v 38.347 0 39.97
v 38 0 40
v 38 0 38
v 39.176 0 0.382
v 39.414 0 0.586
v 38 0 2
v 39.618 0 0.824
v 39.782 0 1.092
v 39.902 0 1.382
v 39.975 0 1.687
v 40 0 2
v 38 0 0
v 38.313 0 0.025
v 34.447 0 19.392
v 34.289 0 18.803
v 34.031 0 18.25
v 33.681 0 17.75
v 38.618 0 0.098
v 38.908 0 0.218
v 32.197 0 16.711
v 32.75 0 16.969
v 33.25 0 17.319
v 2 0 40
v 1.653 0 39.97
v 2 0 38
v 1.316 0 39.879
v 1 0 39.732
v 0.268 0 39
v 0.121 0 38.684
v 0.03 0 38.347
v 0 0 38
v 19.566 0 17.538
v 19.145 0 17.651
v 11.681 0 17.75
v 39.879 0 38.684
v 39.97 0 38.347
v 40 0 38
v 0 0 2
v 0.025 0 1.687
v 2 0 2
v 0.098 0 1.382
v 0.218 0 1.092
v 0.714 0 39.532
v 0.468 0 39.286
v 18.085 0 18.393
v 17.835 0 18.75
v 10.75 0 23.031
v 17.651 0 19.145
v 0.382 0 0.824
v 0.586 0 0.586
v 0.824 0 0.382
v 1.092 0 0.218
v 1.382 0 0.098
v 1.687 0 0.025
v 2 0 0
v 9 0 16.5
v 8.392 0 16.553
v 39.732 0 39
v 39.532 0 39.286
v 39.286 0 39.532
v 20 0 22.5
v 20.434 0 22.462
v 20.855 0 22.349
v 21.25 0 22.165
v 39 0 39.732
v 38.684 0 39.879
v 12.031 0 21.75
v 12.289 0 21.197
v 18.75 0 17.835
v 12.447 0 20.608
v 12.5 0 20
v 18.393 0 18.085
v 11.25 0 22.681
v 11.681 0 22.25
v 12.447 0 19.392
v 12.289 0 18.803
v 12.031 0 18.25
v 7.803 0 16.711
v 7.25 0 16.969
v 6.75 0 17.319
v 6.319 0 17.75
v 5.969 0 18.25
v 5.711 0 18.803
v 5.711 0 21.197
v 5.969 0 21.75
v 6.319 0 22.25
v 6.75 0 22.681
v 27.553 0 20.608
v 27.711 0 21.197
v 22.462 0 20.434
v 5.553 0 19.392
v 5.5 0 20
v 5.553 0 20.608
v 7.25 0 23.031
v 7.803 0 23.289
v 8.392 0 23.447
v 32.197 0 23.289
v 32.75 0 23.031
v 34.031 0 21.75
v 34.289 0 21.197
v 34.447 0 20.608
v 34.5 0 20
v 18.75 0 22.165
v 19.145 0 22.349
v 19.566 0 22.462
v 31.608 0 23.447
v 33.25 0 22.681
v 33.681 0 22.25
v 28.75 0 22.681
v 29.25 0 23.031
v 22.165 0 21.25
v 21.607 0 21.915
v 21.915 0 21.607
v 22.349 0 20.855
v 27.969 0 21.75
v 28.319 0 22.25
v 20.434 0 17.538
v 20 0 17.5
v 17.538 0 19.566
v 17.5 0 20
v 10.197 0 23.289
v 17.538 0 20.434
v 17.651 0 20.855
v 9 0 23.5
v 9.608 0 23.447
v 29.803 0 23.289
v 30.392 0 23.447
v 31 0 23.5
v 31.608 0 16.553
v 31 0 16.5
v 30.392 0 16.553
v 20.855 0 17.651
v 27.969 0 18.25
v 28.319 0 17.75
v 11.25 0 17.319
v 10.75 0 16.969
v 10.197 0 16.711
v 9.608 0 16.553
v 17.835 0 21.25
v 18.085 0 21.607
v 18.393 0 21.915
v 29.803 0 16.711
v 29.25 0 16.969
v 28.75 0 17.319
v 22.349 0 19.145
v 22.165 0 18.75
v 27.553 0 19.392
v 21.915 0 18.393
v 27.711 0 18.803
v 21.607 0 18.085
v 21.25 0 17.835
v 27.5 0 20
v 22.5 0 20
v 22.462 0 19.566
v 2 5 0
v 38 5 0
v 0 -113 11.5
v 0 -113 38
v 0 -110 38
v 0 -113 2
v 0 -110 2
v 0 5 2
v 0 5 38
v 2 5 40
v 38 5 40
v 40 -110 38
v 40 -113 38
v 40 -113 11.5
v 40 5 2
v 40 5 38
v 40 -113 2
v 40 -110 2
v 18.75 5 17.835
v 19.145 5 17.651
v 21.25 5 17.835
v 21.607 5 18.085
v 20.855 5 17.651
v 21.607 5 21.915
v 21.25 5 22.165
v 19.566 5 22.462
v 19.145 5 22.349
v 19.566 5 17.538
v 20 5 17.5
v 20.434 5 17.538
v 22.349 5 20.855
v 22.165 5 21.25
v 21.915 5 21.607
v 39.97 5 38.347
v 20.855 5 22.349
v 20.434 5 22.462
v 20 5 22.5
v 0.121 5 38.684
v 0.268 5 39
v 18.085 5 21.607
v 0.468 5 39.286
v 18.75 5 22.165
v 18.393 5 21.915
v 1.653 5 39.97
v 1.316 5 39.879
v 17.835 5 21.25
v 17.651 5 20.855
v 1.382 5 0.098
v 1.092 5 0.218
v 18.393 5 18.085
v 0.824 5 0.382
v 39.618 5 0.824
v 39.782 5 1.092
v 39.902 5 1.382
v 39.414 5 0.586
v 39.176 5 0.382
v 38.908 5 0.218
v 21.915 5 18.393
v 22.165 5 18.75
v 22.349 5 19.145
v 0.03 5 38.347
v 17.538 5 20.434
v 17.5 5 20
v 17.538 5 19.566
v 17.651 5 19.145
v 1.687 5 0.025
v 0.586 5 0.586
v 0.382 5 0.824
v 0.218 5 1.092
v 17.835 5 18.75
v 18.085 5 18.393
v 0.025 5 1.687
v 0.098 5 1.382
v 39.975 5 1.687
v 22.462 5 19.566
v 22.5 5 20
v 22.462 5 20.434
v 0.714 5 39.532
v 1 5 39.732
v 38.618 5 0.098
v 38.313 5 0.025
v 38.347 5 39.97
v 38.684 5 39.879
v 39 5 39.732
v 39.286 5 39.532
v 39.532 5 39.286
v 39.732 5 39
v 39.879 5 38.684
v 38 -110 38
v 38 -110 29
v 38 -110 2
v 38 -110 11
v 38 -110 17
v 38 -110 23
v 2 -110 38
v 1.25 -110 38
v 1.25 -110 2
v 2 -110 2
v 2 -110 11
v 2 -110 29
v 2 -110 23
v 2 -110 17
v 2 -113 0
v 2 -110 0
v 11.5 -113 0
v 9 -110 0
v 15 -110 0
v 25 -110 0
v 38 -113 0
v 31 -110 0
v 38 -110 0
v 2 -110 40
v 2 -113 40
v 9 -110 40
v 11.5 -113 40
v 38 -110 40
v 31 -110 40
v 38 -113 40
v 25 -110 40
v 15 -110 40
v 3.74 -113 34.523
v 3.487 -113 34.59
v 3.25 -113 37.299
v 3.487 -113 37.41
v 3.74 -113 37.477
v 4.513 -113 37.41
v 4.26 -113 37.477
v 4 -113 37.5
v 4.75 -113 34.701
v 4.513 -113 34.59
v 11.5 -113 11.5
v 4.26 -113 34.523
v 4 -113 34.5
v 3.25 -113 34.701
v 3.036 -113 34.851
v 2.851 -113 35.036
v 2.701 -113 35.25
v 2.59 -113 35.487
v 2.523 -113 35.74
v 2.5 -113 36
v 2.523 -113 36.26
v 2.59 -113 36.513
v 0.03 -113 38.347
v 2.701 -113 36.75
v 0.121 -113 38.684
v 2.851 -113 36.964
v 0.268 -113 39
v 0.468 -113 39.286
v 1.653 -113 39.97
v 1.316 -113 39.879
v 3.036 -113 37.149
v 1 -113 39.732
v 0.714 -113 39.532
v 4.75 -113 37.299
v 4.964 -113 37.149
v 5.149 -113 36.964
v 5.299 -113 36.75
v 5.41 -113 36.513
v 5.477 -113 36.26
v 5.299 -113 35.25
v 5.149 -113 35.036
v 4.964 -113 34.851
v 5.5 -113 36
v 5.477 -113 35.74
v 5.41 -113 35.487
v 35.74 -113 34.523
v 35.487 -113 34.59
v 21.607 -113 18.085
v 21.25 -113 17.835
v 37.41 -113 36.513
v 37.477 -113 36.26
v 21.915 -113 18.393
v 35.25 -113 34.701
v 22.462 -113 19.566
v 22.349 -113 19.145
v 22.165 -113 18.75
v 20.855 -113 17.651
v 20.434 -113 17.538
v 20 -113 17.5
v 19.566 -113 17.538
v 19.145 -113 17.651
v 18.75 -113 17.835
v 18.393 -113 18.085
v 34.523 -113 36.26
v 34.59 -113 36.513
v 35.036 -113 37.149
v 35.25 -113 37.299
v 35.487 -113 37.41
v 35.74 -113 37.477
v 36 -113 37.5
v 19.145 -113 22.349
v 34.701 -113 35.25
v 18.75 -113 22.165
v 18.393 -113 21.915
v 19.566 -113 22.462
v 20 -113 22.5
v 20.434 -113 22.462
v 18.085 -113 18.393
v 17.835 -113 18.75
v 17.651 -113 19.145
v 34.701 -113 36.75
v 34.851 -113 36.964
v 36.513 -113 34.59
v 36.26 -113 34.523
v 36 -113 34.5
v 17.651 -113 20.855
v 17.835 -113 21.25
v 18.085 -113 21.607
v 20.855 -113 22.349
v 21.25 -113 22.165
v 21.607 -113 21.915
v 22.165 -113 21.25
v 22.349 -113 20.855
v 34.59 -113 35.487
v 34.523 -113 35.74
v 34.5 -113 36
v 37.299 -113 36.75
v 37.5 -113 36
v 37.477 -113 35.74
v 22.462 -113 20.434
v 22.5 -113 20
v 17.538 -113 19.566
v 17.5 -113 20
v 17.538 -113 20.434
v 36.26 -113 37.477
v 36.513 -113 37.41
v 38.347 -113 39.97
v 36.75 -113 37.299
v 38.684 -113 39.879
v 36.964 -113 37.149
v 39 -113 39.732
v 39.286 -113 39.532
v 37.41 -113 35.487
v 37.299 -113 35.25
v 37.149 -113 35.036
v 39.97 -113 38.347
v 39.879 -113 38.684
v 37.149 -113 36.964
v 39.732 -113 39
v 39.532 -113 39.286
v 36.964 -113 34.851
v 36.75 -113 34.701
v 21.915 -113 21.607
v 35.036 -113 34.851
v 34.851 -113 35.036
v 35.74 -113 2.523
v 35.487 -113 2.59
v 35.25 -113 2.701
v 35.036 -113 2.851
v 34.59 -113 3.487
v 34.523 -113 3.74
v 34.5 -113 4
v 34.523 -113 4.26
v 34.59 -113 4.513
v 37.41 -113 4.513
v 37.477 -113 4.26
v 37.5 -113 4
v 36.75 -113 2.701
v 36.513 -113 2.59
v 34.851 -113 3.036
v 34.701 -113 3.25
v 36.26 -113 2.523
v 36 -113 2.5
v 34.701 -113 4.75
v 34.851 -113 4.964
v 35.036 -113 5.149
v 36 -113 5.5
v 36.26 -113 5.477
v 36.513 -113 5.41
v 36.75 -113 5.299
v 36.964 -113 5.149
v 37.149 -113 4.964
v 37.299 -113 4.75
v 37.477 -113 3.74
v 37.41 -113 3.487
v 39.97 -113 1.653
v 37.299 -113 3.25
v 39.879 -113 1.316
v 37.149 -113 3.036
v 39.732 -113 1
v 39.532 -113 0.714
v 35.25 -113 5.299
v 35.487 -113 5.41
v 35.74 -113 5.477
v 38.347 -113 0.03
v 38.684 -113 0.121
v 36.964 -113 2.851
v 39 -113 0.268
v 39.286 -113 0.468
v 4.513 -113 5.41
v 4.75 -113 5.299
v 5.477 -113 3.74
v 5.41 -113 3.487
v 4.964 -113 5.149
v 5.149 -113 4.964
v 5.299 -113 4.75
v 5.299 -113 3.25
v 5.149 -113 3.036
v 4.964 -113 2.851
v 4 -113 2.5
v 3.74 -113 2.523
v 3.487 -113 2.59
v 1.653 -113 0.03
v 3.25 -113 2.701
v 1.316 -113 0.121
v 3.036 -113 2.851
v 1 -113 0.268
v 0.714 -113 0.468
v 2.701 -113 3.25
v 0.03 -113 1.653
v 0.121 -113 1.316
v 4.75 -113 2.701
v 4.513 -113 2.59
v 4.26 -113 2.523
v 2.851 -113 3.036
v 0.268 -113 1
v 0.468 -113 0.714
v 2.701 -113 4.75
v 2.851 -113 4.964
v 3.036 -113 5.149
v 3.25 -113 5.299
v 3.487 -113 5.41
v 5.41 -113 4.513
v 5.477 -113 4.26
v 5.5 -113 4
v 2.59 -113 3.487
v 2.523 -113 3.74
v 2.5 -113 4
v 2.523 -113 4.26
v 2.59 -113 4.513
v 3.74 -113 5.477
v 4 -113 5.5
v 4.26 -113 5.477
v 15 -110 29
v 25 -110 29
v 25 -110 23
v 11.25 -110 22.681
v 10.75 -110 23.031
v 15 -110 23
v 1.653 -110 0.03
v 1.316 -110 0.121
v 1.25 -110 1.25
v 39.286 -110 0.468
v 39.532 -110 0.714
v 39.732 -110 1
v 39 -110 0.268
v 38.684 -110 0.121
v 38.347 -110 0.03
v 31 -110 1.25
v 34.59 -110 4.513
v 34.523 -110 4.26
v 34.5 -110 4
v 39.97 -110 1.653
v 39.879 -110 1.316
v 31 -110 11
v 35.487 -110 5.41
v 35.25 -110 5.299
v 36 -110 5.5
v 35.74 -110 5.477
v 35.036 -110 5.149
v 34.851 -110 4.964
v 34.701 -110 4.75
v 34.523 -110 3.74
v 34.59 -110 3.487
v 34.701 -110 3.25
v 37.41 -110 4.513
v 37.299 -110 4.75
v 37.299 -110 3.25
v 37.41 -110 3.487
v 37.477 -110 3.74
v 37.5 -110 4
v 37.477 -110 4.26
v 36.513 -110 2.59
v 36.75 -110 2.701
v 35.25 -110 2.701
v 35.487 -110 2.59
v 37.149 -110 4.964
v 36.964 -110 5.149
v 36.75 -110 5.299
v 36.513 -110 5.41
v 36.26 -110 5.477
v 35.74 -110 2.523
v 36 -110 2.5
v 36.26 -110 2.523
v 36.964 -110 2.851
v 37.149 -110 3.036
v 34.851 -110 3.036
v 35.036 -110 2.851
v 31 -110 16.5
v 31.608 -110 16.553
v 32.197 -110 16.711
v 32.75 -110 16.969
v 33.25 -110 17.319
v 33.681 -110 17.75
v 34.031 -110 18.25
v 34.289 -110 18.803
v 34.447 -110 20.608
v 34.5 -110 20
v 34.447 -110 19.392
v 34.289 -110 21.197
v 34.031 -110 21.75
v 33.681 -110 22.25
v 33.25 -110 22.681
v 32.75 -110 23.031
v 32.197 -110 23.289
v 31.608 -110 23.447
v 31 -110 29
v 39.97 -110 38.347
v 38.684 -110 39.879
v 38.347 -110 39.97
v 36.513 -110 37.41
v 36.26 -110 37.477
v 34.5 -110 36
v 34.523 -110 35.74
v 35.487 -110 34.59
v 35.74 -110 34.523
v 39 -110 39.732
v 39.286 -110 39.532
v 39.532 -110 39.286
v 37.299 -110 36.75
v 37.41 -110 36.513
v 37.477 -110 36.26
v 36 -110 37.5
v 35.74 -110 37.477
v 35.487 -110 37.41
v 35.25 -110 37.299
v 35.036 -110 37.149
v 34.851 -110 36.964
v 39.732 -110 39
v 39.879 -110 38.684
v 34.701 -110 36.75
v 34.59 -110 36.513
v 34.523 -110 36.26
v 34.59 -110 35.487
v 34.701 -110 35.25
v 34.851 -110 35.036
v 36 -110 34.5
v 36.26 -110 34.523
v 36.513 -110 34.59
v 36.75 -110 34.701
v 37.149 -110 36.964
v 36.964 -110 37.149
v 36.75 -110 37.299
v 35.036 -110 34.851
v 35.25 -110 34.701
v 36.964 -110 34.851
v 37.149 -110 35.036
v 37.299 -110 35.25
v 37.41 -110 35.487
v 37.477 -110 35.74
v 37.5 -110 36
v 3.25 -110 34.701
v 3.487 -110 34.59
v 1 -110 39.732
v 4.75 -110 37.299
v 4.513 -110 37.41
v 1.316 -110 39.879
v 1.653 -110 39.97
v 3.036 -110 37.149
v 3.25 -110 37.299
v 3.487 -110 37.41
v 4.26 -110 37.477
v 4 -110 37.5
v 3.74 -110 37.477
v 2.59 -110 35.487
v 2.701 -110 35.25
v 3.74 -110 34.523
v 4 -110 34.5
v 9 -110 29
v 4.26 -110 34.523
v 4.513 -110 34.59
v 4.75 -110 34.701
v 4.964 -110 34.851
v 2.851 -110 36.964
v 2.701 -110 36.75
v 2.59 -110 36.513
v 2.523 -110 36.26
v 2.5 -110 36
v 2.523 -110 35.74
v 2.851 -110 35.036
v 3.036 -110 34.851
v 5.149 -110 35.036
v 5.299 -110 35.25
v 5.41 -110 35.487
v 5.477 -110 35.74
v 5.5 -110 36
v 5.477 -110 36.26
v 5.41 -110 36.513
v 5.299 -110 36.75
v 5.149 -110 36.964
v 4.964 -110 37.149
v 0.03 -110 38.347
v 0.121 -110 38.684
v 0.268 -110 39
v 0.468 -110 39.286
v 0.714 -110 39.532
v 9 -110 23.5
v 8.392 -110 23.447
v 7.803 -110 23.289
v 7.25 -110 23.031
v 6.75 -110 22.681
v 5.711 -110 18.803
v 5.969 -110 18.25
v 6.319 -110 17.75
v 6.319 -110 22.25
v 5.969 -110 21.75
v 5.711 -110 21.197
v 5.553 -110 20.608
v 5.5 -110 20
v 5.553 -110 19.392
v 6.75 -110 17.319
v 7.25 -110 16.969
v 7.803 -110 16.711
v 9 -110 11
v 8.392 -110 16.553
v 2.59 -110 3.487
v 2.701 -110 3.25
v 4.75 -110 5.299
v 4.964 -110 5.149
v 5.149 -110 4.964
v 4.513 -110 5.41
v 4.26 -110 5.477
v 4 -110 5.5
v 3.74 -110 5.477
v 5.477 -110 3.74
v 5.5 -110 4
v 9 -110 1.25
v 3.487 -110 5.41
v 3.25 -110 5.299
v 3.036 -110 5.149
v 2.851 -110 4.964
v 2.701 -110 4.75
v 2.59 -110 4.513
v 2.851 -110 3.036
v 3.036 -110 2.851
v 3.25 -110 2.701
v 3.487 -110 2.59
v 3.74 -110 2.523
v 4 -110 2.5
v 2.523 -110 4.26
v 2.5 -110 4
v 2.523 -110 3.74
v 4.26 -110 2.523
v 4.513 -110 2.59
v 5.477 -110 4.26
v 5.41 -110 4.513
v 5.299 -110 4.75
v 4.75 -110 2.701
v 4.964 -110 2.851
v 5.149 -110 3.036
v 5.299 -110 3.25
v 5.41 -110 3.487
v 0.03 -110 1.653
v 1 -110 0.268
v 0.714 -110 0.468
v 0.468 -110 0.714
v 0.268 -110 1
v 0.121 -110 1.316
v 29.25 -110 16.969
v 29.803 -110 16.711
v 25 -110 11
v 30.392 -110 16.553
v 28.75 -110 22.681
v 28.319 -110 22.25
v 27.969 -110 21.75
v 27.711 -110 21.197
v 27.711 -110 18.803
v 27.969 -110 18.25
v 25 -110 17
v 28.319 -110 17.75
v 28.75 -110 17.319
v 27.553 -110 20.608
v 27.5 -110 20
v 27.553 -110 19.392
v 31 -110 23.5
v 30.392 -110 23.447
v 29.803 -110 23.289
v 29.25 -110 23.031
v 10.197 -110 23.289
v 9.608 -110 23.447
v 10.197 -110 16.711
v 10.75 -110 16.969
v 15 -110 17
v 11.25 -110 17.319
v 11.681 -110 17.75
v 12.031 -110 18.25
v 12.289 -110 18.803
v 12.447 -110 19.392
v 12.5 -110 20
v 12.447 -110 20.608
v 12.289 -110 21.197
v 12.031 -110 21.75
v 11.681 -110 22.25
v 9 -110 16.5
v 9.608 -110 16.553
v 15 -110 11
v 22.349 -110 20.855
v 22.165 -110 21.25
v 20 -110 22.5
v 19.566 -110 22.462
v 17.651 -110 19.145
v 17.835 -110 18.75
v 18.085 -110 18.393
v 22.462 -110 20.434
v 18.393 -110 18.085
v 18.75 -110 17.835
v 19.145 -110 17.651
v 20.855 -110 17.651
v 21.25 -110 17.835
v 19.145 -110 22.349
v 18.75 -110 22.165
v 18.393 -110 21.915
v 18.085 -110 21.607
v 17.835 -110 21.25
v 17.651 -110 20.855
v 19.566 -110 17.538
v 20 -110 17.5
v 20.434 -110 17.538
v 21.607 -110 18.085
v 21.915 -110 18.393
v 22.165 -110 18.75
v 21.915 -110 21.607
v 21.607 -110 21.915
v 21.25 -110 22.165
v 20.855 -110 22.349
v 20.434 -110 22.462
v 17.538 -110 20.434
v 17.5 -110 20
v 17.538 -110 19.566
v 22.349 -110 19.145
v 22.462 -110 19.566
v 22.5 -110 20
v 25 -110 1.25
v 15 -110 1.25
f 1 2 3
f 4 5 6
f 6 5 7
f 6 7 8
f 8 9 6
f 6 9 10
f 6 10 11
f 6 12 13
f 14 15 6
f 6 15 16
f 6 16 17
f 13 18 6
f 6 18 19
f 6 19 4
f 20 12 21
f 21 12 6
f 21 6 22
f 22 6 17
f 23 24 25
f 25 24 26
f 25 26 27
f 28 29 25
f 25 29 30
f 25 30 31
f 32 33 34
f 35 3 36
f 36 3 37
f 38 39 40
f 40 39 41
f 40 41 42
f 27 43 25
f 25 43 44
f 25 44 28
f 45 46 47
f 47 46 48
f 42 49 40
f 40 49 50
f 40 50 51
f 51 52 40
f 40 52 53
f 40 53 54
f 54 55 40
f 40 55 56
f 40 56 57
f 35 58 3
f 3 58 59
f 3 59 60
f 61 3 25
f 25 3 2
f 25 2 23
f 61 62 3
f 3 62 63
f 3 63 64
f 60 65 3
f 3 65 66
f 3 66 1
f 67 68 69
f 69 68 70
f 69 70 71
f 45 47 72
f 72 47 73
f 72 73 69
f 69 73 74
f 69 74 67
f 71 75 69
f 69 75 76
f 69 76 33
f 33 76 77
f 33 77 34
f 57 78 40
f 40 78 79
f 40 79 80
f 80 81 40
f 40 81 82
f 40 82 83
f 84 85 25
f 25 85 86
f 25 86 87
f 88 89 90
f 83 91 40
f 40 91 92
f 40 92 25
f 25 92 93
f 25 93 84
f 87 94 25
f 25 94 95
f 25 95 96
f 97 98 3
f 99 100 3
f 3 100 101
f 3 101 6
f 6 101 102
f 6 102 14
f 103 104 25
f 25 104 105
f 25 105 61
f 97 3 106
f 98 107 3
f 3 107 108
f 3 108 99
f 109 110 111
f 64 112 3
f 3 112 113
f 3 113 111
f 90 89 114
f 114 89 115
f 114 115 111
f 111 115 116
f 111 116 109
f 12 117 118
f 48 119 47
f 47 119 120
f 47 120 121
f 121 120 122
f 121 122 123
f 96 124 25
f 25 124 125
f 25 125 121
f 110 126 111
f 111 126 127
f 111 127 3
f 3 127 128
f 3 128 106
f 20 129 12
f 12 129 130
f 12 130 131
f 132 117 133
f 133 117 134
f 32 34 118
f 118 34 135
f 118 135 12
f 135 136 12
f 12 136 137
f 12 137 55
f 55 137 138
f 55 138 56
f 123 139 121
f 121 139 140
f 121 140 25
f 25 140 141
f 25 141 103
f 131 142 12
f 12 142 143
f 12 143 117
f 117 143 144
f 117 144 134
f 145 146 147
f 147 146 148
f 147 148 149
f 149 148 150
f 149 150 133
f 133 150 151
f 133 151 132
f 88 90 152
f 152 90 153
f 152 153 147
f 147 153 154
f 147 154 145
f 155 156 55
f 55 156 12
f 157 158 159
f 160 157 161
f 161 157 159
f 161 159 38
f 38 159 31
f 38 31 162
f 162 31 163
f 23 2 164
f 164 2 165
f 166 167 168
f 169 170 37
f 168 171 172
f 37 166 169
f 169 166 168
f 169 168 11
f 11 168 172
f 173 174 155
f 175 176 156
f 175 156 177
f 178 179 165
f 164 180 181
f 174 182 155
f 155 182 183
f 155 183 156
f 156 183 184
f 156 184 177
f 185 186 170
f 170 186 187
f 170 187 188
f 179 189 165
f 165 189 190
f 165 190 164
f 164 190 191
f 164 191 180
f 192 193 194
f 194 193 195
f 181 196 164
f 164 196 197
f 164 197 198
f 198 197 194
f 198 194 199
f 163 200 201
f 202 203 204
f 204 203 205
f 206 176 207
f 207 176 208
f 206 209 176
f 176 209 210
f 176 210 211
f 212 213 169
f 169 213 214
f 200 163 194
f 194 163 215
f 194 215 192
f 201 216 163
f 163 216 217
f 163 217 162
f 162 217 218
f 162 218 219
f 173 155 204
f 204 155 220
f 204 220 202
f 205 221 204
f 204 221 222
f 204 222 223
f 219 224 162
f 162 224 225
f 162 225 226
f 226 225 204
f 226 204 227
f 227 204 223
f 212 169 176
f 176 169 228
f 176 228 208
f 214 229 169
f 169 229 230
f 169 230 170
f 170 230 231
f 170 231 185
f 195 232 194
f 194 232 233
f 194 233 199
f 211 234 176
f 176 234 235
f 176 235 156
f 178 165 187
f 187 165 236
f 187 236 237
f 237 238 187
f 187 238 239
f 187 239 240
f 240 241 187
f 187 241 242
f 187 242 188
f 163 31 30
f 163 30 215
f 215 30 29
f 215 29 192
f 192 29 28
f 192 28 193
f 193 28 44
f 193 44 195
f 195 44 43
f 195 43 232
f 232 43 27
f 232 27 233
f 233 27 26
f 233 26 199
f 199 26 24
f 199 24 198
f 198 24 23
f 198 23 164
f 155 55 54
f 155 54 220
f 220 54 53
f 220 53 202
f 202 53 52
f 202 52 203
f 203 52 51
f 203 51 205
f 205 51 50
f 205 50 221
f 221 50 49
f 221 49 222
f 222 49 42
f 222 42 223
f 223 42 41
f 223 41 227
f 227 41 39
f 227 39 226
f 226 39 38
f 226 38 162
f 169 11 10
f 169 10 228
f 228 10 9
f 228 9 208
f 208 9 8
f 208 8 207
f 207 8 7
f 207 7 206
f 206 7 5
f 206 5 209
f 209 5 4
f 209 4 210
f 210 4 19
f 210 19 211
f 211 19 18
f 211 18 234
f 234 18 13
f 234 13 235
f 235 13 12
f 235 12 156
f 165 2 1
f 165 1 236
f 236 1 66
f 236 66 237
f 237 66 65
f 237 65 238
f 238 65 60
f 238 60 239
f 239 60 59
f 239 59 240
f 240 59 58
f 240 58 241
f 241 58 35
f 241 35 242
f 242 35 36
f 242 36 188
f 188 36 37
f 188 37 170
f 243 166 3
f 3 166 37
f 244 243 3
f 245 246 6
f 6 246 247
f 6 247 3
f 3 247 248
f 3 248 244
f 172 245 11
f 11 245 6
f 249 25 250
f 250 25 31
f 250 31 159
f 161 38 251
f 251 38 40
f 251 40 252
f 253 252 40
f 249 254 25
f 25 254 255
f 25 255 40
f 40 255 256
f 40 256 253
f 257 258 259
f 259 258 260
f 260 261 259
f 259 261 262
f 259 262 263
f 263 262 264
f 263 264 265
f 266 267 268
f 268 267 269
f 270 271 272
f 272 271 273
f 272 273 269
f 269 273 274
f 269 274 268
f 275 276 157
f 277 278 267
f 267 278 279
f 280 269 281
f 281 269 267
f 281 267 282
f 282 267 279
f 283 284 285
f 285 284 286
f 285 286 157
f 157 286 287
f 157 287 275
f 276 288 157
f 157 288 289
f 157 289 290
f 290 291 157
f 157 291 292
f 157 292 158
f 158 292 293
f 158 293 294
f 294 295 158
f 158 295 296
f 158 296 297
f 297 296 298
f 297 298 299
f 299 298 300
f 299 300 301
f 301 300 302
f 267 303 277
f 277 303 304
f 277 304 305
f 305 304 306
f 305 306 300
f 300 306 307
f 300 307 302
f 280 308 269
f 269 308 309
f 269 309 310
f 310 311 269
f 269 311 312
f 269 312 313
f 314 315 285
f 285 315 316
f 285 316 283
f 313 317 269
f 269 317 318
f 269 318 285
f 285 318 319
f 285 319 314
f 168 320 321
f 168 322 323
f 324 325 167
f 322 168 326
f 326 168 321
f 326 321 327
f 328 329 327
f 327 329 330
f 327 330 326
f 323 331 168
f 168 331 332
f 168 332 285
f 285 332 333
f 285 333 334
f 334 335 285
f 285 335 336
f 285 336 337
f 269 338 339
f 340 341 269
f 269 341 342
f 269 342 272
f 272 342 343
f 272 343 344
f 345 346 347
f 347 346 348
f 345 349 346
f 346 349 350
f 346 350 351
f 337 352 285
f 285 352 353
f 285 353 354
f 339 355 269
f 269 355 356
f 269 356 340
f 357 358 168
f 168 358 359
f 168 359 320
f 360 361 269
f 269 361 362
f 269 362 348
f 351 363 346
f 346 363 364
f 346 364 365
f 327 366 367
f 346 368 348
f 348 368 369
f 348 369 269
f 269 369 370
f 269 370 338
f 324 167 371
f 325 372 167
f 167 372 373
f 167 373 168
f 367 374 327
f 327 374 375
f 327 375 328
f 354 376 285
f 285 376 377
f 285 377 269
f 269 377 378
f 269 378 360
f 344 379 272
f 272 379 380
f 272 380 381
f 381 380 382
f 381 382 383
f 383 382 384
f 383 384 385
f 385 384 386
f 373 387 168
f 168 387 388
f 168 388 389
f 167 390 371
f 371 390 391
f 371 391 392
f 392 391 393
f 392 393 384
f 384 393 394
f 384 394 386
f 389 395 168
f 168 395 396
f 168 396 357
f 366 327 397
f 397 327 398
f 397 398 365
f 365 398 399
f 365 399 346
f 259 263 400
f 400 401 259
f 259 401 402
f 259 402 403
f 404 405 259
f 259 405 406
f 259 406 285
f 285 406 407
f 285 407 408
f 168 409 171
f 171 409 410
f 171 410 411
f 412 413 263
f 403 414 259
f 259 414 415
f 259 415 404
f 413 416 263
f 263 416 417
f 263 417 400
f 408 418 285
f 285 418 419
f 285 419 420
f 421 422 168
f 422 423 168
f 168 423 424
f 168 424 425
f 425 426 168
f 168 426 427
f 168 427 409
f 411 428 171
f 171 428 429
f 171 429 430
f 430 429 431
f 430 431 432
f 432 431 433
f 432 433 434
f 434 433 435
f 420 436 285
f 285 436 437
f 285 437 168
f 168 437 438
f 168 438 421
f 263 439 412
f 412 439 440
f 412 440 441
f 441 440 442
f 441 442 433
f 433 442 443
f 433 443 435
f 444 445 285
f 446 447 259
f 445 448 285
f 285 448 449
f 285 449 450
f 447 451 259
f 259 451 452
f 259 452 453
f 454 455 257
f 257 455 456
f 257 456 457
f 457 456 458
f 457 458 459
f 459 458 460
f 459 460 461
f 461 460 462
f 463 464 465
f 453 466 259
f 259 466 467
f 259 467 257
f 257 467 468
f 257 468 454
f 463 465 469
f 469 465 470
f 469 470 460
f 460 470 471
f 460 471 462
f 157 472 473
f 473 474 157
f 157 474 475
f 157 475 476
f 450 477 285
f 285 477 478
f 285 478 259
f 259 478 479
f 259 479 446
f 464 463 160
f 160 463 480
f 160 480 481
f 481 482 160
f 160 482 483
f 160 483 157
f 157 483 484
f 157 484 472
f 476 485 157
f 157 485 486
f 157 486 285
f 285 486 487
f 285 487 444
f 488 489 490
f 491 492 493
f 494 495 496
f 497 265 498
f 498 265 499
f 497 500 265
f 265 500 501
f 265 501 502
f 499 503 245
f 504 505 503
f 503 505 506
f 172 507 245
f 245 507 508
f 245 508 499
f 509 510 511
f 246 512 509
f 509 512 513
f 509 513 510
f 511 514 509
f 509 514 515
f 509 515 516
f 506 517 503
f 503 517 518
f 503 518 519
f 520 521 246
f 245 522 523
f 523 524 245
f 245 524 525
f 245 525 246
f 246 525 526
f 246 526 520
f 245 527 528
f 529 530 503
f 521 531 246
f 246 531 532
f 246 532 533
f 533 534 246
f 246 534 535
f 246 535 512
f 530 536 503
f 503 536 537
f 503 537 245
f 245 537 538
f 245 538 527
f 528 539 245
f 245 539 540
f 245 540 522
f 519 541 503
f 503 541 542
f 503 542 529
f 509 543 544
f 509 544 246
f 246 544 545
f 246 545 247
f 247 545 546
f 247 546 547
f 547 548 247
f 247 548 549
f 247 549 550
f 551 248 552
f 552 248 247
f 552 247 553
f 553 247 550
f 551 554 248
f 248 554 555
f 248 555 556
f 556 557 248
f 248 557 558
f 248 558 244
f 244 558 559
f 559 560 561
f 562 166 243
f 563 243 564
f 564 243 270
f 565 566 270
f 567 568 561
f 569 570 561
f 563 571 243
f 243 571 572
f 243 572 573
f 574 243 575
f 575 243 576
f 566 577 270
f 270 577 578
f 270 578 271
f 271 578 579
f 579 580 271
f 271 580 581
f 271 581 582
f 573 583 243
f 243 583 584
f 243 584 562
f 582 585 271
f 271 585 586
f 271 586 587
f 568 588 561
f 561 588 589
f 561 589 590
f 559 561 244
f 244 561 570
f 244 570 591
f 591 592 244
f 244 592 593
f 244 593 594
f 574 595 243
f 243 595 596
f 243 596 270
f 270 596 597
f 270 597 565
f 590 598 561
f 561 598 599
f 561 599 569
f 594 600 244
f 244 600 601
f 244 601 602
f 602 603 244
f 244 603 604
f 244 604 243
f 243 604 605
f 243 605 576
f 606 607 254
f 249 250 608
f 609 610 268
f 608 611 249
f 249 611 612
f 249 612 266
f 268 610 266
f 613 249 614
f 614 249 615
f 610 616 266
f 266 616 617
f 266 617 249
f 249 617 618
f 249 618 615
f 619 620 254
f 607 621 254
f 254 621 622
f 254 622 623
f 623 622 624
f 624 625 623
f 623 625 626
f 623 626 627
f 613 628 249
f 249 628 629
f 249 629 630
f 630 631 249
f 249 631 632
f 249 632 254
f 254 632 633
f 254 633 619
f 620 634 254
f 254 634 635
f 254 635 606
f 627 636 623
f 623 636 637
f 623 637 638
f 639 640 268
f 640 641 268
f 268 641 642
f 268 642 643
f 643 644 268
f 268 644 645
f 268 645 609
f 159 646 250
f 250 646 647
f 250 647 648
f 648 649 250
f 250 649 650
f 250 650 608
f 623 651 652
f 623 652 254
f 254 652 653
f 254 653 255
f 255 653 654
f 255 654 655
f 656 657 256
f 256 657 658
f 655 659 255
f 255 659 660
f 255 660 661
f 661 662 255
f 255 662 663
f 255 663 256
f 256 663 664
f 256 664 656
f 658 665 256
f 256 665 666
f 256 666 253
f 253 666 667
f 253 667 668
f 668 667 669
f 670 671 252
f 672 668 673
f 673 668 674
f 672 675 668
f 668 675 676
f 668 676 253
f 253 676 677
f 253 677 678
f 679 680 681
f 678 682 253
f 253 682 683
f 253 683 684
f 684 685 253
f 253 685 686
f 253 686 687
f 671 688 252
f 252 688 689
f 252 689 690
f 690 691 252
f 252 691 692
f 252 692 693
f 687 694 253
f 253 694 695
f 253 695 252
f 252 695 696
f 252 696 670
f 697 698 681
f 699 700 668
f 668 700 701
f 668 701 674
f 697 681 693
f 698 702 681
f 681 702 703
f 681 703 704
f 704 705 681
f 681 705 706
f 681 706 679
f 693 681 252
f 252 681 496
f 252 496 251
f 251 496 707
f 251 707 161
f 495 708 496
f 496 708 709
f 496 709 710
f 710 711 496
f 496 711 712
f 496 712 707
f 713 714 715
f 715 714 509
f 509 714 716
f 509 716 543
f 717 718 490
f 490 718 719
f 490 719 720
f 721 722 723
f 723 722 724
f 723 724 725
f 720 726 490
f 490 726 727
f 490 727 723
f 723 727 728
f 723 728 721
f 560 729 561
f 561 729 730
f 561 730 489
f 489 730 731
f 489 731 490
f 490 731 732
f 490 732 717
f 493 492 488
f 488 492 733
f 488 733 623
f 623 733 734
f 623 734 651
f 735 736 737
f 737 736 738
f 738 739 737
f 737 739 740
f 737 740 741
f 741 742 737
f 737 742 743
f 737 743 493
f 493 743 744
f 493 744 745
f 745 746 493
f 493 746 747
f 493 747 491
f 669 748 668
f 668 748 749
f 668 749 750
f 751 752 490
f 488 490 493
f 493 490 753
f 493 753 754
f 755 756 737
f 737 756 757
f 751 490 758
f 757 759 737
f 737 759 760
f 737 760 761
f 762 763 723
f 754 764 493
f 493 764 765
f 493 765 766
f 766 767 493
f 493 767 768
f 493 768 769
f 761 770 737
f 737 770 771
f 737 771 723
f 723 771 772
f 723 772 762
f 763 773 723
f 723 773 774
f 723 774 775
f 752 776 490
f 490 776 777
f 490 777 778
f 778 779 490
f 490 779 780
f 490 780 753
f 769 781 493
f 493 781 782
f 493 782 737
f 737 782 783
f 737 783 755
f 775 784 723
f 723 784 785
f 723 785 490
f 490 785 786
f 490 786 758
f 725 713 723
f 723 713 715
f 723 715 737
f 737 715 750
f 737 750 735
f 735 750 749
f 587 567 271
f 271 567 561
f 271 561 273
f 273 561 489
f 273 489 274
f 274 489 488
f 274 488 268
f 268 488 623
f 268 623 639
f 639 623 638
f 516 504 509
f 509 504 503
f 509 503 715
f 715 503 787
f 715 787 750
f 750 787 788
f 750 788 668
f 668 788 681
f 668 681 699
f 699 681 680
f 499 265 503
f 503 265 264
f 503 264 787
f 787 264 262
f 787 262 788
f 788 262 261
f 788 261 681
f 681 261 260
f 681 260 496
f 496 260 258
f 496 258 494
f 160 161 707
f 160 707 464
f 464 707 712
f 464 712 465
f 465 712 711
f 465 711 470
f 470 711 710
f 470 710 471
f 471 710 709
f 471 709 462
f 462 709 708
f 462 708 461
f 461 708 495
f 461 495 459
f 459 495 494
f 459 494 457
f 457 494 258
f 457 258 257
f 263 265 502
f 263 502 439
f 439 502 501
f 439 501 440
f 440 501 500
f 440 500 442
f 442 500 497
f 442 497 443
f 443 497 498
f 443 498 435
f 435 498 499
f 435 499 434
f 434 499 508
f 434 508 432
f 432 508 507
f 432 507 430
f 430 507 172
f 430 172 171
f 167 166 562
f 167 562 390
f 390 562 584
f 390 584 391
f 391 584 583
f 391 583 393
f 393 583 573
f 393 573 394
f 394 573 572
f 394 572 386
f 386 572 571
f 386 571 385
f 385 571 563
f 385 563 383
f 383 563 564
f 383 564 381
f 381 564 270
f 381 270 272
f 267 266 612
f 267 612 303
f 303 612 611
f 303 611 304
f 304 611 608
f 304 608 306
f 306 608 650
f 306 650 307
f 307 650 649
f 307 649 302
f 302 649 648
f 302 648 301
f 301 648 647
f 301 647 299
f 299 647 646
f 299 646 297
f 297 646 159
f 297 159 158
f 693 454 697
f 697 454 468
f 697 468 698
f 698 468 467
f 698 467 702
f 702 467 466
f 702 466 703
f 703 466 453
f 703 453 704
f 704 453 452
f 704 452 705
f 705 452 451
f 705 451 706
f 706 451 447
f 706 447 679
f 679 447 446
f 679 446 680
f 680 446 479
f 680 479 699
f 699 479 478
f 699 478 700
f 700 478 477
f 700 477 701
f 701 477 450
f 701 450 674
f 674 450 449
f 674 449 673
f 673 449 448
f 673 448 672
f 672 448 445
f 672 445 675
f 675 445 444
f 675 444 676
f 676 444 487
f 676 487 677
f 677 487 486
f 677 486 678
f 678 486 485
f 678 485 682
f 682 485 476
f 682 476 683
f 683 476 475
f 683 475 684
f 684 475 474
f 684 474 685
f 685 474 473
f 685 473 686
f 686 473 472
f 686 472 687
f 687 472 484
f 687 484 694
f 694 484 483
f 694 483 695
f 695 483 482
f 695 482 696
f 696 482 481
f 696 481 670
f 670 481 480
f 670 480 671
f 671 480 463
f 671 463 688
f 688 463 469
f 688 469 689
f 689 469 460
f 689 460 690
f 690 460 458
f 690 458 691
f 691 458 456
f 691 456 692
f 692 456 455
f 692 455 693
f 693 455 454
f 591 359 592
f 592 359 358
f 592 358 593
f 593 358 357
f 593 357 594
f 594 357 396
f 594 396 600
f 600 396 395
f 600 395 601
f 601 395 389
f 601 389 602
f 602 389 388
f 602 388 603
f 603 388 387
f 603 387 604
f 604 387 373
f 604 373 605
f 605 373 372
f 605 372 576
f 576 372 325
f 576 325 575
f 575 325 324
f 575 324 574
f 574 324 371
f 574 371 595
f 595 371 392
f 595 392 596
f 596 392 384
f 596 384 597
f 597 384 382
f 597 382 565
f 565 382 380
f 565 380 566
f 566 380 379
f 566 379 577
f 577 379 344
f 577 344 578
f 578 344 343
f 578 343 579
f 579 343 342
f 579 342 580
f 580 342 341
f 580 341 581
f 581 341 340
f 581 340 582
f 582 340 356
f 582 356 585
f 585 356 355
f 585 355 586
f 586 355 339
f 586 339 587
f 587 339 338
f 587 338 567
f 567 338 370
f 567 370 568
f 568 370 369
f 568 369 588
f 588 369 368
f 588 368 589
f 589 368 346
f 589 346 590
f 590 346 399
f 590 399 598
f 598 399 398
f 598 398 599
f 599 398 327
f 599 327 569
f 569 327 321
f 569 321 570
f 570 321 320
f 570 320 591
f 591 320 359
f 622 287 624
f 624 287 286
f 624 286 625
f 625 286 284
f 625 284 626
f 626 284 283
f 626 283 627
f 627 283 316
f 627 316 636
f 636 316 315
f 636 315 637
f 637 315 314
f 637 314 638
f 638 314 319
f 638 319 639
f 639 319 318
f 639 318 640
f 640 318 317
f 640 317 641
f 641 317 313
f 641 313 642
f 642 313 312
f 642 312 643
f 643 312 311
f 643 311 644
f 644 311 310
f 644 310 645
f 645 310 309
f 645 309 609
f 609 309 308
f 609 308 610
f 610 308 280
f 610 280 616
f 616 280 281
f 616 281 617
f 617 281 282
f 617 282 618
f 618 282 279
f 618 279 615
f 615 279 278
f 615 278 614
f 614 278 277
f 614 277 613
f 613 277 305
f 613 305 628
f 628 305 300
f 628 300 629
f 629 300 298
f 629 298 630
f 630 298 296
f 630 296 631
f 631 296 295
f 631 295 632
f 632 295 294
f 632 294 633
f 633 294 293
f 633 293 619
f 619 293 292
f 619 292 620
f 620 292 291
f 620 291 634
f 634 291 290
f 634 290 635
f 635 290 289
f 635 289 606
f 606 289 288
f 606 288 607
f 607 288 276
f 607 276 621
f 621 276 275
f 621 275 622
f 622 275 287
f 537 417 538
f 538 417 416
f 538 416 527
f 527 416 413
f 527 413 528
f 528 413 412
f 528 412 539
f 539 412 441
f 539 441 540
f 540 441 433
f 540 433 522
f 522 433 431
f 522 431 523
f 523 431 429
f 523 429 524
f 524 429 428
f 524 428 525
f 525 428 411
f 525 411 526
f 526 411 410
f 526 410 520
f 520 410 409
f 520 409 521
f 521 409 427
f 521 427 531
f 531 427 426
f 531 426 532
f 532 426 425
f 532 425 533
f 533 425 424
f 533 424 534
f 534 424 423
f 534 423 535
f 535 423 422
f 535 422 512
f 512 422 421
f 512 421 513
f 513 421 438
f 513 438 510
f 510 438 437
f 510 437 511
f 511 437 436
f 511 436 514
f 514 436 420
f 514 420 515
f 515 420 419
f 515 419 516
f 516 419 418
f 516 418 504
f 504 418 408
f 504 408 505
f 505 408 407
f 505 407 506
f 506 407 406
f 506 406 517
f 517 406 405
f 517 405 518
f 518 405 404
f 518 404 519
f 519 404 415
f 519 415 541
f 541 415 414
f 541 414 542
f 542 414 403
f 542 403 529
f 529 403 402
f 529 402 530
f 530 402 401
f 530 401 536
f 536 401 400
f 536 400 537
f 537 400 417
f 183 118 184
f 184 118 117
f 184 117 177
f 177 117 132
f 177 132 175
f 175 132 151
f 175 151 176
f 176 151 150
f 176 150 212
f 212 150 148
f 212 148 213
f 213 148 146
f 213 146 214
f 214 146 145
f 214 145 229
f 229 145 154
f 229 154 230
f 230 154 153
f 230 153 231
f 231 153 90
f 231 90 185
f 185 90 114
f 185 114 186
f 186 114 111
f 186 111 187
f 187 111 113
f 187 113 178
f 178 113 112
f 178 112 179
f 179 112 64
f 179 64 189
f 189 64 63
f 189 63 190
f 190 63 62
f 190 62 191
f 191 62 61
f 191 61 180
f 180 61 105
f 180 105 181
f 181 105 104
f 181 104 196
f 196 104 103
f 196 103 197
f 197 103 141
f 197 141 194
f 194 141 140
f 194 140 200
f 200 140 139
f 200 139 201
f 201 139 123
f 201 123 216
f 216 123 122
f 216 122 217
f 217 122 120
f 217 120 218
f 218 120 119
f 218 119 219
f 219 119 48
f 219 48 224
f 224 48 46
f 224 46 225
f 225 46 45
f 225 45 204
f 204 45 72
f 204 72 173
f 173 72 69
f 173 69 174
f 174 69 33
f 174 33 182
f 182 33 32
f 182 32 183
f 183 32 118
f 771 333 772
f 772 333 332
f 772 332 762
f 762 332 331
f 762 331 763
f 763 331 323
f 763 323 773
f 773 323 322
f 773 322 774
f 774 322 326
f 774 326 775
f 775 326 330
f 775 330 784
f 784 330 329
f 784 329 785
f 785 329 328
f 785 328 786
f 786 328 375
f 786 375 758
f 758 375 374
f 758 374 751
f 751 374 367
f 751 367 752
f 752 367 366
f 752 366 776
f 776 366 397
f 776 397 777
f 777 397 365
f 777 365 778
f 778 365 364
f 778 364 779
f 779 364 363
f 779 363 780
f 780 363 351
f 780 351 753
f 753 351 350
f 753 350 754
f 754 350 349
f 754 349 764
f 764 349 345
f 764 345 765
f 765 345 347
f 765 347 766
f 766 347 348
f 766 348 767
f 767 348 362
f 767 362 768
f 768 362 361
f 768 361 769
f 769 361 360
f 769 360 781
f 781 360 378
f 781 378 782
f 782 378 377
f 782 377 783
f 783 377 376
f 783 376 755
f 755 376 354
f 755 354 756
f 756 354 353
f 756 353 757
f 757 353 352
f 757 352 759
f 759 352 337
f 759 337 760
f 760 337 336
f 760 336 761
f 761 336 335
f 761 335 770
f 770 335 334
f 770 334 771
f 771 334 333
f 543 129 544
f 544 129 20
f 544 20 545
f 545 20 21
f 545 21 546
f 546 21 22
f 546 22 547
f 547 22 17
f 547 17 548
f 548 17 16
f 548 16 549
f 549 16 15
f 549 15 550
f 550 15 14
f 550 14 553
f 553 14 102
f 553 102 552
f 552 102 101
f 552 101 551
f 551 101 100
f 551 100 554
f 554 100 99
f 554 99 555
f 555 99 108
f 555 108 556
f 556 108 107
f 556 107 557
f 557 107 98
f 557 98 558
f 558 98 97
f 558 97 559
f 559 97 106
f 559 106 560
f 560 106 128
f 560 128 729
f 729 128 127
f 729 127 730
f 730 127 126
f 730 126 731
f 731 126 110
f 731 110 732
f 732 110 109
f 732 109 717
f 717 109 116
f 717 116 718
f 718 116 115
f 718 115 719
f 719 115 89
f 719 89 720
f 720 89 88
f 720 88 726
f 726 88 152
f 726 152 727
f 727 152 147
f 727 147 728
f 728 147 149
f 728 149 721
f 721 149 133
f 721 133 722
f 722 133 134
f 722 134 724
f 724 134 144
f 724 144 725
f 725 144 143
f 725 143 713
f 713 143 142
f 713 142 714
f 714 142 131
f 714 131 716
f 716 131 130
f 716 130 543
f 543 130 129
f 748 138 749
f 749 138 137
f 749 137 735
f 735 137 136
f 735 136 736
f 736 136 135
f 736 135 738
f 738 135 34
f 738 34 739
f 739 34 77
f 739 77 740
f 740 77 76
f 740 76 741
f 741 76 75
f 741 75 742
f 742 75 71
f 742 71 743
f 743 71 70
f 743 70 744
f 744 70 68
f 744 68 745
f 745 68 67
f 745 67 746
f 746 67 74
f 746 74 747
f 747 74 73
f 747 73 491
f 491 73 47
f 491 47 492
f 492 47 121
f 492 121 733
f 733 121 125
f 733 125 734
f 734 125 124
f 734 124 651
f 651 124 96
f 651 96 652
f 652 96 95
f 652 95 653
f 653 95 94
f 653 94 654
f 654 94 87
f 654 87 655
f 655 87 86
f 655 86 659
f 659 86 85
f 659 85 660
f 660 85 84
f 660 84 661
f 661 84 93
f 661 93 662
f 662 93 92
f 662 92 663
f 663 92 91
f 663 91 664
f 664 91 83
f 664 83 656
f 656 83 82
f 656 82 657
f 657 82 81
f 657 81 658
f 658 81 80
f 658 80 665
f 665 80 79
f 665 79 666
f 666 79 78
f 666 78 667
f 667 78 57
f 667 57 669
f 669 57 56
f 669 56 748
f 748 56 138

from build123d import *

# Parameters (mm, degrees)
SKETCH1_W           = 40
SKETCH1_H           = 40
BOSS_EXTRUDE1_DEPTH = 5
FILLET1_R           = 2
SKETCH2_W           = 2
SKETCH2_H           = 36
BOSS_EXTRUDE2_DEPTH = 110
SKETCH3_W           = 40
SKETCH3_H           = 40
BOSS_EXTRUDE3_DEPTH = 3
FILLET2_R           = 2
SKETCH4_R           = 1.5
CUT_EXTRUDE1_DEPTH  = 10
SKETCH5_R           = 2.5
CUT_EXTRUDE2_DEPTH  = 127.368508888
SKETCH6_R           = 2.5
CUT_EXTRUDE4_DEPTH  = 131.858702575
SKETCH8_R           = 3.5
BOSS_EXTRUDE4_DEPTH = 114


with BuildPart() as part:
    # Sketch1 → Boss-Extrude1 (new body)
    with BuildSketch(Plane(origin=(0, 0, 0), x_dir=(1, 0, 0), z_dir=(0, 1, 0))):
        with Locations((20, -20)):
            Rectangle(SKETCH1_W, SKETCH1_H)
    extrude(amount=BOSS_EXTRUDE1_DEPTH)

    # Fillet1
    fillet1_edges = [part.edges().sort_by_distance(p)[0] for p in [
        (40, 2.5, 0),
        (40, 2.5, 40),
        (0, 2.5, 40),
        (0, 2.5, 0),
    ]]
    fillet(fillet1_edges, radius=FILLET1_R)

    # Sketch2 → Boss-Extrude2 (add)
    with BuildSketch(Plane.XZ):
        with Locations((1, 20)):
            Rectangle(SKETCH2_W, SKETCH2_H)
        with Locations((39, 20)):
            Rectangle(SKETCH2_W, SKETCH2_H)
    extrude(amount=BOSS_EXTRUDE2_DEPTH)

    # Sketch3 → Boss-Extrude3 (add)
    with BuildSketch(Plane.XZ.offset(110)):
        with Locations((20, 20)):
            Rectangle(SKETCH3_W, SKETCH3_H)
    extrude(amount=BOSS_EXTRUDE3_DEPTH)

    # Fillet2
    fillet2_edges = [part.edges().sort_by_distance(p)[0] for p in [
        (0, -111.5, 0),
        (40, -111.5, 0),
        (40, -111.5, 40),
        (0, -111.5, 40),
    ]]
    fillet(fillet2_edges, radius=FILLET2_R)

    # Sketch4 → Cut-Extrude1 (cut)
    with BuildSketch(Plane.XZ.offset(113)):
        with Locations(Location((4, 4, 0), (0, 0, 270))):
            Circle(SKETCH4_R)
        with Locations(Location((36, 4, 0), (0, 0, 270))):
            Circle(SKETCH4_R)
        with Locations(Location((4, 36, 0), (0, 0, 270))):
            Circle(SKETCH4_R)
        with Locations(Location((36, 36, 0), (0, 0, 270))):
            Circle(SKETCH4_R)
    extrude(amount=-CUT_EXTRUDE1_DEPTH, mode=Mode.SUBTRACT)

    # Sketch5 → Cut-Extrude2 (cut, through all)
    with BuildSketch(Plane(origin=(0, 0, 0), x_dir=(1, 0, 0), z_dir=(0, 1, 0))):
        with Locations(Location((20, -20, 0), (0, 0, 270))):
            Circle(SKETCH5_R)
    extrude(amount=CUT_EXTRUDE2_DEPTH, mode=Mode.SUBTRACT)

    # Sketch6 → Cut-Extrude4 (cut, through all)
    with BuildSketch(Plane.XZ.offset(113)):
        with Locations(Location((20, 20, 0), (0, 0, 90))):
            Circle(SKETCH6_R)
    extrude(amount=-CUT_EXTRUDE4_DEPTH, mode=Mode.SUBTRACT)

    # Sketch8 → Boss-Extrude4 (add)
    with BuildSketch(Plane(origin=(0, -110, 0), x_dir=(1, 0, 0), z_dir=(0, 1, 0))):
        with Locations(Location((9, -20, 0), (0, 0, 270))):
            Circle(SKETCH8_R)
        with Locations(Location((31, -20, 0), (0, 0, 270))):
            Circle(SKETCH8_R)
    extrude(amount=BOSS_EXTRUDE4_DEPTH)


solid = part.part
